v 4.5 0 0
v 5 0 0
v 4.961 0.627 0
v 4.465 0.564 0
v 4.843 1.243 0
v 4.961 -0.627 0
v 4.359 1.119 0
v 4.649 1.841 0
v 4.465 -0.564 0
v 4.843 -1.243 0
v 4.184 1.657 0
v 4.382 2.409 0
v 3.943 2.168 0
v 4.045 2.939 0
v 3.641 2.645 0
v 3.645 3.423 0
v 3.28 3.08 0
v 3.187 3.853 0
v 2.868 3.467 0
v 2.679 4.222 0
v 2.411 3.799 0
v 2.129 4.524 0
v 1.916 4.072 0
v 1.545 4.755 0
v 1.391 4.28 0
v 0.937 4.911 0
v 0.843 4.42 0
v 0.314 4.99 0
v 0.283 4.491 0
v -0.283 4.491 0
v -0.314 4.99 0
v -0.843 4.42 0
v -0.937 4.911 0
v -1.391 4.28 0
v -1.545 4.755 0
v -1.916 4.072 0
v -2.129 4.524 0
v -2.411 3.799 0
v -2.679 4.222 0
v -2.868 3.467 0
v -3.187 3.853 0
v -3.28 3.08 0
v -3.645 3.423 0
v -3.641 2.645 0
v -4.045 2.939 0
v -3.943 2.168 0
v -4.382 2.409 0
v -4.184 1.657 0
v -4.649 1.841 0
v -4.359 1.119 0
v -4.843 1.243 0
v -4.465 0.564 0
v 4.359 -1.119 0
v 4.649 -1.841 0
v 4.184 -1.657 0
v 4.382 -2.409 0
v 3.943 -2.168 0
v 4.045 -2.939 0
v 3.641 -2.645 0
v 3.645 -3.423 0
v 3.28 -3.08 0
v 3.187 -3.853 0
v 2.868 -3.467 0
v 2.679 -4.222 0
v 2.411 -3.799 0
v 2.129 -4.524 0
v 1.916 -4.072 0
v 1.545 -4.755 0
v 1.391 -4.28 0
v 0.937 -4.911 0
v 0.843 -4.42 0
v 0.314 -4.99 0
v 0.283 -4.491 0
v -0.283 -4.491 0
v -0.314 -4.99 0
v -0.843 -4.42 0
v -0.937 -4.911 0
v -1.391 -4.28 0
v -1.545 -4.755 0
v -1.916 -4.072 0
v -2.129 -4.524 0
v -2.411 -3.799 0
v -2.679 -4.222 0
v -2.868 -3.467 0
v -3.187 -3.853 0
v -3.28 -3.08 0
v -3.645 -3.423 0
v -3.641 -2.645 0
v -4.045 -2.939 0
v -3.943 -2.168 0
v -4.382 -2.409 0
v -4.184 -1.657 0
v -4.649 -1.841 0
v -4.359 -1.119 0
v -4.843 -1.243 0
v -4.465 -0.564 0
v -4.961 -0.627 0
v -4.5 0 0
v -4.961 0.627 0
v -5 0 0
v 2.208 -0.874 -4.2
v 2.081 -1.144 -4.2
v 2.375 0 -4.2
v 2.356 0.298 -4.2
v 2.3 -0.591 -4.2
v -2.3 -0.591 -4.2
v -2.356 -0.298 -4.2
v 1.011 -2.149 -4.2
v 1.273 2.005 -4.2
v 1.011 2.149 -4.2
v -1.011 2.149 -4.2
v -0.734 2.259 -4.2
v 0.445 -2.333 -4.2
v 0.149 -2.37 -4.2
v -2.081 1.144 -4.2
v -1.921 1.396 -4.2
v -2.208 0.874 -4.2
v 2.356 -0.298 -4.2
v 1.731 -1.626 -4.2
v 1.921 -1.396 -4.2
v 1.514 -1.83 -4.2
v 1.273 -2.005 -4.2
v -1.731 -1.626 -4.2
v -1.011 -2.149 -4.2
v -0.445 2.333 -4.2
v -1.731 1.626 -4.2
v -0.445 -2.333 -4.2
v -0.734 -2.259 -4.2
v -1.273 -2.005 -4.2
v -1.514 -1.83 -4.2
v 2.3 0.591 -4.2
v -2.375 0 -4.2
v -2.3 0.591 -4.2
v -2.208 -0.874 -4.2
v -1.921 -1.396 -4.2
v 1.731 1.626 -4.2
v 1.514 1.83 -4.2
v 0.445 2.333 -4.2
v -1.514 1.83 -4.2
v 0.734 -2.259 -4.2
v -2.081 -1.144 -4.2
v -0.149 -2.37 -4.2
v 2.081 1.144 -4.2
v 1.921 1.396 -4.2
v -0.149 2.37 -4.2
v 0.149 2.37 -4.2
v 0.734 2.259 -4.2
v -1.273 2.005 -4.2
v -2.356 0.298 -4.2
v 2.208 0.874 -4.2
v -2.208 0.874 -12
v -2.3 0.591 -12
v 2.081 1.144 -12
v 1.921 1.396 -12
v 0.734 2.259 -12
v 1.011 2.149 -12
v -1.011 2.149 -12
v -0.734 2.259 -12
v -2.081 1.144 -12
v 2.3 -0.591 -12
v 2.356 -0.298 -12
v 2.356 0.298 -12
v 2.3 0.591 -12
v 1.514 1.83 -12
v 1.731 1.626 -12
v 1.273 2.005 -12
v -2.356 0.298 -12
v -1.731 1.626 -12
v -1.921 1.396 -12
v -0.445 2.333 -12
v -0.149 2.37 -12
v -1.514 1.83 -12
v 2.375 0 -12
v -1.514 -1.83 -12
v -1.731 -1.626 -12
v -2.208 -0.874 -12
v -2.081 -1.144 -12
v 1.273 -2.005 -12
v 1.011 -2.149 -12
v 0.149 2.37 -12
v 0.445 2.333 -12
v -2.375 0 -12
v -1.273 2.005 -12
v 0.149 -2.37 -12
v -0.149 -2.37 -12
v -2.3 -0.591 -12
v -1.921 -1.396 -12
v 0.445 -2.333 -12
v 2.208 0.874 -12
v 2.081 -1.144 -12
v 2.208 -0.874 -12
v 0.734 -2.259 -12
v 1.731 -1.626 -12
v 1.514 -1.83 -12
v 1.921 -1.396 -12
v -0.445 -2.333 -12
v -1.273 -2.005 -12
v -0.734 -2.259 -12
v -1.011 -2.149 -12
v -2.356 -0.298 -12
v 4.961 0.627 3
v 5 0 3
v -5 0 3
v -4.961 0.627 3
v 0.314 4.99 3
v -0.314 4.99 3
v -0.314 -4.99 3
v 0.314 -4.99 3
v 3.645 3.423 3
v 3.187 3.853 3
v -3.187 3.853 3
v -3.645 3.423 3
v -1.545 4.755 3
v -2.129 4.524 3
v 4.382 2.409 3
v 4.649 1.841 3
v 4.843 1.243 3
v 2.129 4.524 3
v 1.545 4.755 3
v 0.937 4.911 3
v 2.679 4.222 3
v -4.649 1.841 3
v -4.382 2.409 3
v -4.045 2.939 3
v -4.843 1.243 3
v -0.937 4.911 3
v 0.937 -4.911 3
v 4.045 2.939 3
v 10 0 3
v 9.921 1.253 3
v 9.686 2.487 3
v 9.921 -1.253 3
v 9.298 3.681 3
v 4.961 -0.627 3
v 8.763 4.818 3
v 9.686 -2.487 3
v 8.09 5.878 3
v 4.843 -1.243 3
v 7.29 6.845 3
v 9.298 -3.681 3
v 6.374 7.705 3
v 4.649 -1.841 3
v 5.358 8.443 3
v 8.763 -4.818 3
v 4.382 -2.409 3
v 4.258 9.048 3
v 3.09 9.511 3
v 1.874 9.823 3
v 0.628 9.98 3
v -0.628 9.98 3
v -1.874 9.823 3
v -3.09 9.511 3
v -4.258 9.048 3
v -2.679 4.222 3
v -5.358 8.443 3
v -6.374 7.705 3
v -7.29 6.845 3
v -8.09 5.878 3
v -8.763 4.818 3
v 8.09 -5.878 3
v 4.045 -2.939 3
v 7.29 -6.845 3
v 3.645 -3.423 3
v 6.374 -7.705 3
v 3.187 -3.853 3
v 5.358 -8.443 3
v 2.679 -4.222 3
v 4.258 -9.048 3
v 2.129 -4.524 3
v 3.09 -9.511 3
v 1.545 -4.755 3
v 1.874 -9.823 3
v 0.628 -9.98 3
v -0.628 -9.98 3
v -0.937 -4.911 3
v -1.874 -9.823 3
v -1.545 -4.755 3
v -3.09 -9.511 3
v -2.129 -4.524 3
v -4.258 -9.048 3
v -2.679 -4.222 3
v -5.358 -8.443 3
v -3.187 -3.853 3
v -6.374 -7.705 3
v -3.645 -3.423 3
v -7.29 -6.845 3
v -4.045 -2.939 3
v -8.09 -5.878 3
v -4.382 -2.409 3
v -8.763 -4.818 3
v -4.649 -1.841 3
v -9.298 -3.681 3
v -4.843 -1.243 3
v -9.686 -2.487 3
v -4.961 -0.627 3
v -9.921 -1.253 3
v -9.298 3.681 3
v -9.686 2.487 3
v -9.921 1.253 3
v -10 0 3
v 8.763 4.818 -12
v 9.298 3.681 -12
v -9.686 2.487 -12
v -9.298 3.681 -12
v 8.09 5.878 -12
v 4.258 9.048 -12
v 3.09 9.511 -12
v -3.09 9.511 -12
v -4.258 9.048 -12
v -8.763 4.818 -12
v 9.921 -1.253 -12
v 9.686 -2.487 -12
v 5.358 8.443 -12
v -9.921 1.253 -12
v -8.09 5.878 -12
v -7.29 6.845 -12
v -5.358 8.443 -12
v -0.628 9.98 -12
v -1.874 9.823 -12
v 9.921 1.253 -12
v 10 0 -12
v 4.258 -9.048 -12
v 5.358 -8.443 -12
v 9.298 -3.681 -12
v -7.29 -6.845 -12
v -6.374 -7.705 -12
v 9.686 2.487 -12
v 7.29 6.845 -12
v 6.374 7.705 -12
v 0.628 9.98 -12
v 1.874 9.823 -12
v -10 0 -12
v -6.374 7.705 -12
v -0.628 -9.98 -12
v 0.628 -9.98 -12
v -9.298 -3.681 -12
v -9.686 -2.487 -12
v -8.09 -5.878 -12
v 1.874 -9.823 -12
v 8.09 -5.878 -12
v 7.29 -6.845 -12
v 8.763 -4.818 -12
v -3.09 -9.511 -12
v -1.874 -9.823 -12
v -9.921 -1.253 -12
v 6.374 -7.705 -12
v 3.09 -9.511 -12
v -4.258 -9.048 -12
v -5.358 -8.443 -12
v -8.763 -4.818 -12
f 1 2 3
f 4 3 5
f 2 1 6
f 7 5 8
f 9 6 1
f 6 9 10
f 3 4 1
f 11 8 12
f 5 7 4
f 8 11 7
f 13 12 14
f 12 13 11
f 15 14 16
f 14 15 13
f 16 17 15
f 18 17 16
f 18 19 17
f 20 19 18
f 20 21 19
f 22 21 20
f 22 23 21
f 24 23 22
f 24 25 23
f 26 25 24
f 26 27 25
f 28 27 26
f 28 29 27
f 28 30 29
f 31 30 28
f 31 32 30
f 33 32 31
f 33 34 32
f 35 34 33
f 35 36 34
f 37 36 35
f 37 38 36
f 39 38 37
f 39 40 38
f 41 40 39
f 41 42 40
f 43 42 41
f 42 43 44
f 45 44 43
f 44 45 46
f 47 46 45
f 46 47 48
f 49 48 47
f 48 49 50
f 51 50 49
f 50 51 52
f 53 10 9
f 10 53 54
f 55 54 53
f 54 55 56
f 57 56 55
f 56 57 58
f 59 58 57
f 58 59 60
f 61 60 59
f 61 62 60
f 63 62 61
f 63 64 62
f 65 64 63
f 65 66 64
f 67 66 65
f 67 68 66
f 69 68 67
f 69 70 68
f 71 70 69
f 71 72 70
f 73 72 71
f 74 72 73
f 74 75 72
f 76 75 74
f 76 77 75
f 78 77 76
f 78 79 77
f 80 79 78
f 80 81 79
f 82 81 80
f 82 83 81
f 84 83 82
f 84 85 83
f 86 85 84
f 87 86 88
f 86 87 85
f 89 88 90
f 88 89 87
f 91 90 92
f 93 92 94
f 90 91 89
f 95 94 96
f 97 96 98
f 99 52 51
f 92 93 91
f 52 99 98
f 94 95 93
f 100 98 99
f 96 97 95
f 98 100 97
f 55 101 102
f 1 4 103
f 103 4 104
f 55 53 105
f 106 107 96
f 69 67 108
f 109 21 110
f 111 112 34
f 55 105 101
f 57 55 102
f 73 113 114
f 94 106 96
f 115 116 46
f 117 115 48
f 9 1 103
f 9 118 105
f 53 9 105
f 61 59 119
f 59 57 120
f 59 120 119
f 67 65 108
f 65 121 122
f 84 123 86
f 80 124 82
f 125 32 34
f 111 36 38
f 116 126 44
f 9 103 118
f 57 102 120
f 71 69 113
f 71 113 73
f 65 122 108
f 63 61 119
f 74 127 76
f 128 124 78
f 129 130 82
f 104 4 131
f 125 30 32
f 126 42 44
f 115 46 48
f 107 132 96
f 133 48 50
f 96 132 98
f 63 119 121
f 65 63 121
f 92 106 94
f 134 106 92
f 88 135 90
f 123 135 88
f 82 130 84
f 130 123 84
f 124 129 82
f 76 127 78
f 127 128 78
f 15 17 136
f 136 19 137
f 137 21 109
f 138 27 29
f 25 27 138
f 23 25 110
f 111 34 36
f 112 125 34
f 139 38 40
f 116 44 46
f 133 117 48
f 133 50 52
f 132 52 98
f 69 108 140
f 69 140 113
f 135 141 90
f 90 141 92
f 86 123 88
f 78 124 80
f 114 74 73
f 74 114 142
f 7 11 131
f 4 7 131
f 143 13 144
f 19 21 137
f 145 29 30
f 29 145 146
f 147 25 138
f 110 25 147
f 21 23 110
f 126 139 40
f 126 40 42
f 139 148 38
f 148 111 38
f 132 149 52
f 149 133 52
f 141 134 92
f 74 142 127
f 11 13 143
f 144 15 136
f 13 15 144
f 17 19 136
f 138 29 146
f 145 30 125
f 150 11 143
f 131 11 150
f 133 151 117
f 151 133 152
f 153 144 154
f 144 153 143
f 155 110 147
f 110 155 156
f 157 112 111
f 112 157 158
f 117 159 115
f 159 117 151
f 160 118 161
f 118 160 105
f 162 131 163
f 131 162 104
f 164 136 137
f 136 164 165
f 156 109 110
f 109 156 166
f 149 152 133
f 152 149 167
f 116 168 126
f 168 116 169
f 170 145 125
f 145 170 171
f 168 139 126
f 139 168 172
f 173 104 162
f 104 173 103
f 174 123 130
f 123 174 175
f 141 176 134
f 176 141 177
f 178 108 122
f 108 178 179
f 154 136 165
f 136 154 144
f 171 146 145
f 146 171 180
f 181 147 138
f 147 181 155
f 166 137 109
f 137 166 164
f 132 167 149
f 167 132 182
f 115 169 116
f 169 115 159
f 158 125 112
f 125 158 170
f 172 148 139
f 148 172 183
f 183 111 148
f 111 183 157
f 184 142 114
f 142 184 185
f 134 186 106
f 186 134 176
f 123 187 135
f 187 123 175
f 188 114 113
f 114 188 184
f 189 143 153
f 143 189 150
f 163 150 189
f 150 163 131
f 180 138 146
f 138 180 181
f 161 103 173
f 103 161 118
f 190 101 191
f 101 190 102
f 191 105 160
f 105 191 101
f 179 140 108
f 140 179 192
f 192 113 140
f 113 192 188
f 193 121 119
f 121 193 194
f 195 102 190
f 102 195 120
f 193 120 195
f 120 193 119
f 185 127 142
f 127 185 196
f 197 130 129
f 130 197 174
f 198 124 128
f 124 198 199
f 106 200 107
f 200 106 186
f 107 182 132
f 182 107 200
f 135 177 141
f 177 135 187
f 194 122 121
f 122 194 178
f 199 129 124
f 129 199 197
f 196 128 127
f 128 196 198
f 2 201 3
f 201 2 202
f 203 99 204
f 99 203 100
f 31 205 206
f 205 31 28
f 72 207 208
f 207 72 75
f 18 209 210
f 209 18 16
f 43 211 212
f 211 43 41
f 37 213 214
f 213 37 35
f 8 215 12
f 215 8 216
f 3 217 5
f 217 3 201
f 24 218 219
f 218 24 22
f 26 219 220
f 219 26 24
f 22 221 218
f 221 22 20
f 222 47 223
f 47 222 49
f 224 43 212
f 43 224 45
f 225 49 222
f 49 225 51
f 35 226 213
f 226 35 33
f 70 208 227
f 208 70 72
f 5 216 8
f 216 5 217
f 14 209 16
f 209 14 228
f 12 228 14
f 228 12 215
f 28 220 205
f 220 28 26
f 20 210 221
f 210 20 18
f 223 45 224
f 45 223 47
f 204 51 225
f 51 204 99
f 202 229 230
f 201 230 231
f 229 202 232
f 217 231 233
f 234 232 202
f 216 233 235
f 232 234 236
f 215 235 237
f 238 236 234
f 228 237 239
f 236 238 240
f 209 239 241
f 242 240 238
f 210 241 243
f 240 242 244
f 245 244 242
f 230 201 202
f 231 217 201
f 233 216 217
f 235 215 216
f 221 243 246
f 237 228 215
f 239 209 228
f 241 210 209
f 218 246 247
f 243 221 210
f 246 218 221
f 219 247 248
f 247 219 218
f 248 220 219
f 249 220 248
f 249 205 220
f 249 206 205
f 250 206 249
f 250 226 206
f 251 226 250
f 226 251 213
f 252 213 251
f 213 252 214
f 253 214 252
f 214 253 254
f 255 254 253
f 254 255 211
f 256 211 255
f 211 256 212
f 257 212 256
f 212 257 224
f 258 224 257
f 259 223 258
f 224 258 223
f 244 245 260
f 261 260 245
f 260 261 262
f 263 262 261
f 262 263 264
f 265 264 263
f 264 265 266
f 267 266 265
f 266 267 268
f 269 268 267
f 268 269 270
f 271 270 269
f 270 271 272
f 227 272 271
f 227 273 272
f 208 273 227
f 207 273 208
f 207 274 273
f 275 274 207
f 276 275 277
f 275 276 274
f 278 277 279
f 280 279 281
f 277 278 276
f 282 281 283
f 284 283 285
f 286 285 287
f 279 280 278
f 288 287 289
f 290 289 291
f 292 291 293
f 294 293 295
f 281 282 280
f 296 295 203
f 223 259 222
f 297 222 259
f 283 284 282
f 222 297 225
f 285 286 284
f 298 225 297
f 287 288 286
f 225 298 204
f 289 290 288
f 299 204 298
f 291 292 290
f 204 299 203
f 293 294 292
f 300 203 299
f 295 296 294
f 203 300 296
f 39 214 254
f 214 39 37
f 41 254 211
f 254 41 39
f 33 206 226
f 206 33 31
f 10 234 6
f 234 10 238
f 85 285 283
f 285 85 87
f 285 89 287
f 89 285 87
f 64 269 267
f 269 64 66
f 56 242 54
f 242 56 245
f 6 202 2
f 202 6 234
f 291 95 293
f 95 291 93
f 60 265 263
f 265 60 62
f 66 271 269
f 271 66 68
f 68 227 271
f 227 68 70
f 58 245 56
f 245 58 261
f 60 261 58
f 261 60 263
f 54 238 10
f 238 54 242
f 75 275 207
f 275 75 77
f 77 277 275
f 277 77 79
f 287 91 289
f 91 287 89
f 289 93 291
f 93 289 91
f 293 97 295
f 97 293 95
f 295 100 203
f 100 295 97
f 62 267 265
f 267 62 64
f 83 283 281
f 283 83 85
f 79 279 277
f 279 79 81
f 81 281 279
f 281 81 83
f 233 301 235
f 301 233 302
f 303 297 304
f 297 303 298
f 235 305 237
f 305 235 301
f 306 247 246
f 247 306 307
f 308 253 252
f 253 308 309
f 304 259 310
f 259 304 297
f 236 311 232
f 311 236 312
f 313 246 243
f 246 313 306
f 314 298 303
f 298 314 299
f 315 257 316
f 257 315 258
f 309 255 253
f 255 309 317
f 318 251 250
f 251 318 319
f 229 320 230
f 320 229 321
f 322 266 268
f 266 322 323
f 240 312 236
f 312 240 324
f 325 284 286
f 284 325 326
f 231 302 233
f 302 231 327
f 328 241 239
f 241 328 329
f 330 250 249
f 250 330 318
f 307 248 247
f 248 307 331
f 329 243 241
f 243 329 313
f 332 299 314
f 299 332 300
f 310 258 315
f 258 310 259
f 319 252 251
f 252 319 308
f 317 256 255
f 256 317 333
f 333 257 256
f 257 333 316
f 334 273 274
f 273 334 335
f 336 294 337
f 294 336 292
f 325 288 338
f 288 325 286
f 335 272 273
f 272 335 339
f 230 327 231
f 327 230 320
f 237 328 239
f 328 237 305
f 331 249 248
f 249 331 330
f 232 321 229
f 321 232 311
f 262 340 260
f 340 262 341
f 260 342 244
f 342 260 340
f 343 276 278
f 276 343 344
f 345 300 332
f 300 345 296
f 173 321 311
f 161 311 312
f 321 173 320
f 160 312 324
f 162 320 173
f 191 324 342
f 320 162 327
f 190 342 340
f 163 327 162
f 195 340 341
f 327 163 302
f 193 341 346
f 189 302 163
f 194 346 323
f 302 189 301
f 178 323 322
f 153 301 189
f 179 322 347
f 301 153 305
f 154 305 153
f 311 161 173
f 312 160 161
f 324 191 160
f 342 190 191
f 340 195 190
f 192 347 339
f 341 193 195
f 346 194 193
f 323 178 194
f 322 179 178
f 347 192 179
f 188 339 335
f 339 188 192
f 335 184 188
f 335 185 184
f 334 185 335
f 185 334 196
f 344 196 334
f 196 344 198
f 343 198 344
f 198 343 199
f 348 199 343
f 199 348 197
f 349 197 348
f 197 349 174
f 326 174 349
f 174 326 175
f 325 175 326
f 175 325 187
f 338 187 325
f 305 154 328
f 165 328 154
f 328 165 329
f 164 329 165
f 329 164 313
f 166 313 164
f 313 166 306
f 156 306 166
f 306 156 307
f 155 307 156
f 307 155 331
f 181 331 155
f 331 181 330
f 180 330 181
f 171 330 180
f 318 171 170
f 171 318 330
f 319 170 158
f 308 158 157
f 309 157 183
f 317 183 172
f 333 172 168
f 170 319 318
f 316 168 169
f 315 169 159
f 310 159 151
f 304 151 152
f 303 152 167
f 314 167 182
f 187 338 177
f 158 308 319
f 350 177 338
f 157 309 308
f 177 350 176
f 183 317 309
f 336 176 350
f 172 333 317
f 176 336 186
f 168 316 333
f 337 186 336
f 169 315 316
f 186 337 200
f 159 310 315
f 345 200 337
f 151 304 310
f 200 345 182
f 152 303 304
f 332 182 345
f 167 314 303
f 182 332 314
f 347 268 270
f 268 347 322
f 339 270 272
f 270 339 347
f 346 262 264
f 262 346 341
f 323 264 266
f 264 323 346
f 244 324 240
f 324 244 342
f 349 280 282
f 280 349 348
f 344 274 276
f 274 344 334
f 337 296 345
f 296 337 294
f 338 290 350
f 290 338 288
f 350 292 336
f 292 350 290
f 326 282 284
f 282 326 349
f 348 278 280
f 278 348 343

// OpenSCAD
$fn = 50;


difference() {
	union() {
		translate(v = [0, 0, -12.0000000000]) {
			cylinder(h = 15, r = 10.0000000000);
		}
	}
	union() {
		translate(v = [0, 0, 0]) {
			rotate(a = [0, 0, 0]) {
				difference() {
					union() {
						translate(v = [0, 0, -15.0000000000]) {
							cylinder(h = 15, r = 2.2500000000);
						}
						translate(v = [0, 0, -4.2000000000]) {
							cylinder(h = 4.2000000000, r1 = 2.3750000000, r2 = 4.5000000000);
						}
						translate(v = [0, 0, -15.0000000000]) {
							cylinder(h = 15, r = 2.3750000000);
						}
						translate(v = [0, 0, -15.0000000000]) {
							cylinder(h = 15, r = 2.2500000000);
						}
					}
					union();
				}
			}
		}
		#cylinder(h = 3, r = 5.0000000000);
	}
}
